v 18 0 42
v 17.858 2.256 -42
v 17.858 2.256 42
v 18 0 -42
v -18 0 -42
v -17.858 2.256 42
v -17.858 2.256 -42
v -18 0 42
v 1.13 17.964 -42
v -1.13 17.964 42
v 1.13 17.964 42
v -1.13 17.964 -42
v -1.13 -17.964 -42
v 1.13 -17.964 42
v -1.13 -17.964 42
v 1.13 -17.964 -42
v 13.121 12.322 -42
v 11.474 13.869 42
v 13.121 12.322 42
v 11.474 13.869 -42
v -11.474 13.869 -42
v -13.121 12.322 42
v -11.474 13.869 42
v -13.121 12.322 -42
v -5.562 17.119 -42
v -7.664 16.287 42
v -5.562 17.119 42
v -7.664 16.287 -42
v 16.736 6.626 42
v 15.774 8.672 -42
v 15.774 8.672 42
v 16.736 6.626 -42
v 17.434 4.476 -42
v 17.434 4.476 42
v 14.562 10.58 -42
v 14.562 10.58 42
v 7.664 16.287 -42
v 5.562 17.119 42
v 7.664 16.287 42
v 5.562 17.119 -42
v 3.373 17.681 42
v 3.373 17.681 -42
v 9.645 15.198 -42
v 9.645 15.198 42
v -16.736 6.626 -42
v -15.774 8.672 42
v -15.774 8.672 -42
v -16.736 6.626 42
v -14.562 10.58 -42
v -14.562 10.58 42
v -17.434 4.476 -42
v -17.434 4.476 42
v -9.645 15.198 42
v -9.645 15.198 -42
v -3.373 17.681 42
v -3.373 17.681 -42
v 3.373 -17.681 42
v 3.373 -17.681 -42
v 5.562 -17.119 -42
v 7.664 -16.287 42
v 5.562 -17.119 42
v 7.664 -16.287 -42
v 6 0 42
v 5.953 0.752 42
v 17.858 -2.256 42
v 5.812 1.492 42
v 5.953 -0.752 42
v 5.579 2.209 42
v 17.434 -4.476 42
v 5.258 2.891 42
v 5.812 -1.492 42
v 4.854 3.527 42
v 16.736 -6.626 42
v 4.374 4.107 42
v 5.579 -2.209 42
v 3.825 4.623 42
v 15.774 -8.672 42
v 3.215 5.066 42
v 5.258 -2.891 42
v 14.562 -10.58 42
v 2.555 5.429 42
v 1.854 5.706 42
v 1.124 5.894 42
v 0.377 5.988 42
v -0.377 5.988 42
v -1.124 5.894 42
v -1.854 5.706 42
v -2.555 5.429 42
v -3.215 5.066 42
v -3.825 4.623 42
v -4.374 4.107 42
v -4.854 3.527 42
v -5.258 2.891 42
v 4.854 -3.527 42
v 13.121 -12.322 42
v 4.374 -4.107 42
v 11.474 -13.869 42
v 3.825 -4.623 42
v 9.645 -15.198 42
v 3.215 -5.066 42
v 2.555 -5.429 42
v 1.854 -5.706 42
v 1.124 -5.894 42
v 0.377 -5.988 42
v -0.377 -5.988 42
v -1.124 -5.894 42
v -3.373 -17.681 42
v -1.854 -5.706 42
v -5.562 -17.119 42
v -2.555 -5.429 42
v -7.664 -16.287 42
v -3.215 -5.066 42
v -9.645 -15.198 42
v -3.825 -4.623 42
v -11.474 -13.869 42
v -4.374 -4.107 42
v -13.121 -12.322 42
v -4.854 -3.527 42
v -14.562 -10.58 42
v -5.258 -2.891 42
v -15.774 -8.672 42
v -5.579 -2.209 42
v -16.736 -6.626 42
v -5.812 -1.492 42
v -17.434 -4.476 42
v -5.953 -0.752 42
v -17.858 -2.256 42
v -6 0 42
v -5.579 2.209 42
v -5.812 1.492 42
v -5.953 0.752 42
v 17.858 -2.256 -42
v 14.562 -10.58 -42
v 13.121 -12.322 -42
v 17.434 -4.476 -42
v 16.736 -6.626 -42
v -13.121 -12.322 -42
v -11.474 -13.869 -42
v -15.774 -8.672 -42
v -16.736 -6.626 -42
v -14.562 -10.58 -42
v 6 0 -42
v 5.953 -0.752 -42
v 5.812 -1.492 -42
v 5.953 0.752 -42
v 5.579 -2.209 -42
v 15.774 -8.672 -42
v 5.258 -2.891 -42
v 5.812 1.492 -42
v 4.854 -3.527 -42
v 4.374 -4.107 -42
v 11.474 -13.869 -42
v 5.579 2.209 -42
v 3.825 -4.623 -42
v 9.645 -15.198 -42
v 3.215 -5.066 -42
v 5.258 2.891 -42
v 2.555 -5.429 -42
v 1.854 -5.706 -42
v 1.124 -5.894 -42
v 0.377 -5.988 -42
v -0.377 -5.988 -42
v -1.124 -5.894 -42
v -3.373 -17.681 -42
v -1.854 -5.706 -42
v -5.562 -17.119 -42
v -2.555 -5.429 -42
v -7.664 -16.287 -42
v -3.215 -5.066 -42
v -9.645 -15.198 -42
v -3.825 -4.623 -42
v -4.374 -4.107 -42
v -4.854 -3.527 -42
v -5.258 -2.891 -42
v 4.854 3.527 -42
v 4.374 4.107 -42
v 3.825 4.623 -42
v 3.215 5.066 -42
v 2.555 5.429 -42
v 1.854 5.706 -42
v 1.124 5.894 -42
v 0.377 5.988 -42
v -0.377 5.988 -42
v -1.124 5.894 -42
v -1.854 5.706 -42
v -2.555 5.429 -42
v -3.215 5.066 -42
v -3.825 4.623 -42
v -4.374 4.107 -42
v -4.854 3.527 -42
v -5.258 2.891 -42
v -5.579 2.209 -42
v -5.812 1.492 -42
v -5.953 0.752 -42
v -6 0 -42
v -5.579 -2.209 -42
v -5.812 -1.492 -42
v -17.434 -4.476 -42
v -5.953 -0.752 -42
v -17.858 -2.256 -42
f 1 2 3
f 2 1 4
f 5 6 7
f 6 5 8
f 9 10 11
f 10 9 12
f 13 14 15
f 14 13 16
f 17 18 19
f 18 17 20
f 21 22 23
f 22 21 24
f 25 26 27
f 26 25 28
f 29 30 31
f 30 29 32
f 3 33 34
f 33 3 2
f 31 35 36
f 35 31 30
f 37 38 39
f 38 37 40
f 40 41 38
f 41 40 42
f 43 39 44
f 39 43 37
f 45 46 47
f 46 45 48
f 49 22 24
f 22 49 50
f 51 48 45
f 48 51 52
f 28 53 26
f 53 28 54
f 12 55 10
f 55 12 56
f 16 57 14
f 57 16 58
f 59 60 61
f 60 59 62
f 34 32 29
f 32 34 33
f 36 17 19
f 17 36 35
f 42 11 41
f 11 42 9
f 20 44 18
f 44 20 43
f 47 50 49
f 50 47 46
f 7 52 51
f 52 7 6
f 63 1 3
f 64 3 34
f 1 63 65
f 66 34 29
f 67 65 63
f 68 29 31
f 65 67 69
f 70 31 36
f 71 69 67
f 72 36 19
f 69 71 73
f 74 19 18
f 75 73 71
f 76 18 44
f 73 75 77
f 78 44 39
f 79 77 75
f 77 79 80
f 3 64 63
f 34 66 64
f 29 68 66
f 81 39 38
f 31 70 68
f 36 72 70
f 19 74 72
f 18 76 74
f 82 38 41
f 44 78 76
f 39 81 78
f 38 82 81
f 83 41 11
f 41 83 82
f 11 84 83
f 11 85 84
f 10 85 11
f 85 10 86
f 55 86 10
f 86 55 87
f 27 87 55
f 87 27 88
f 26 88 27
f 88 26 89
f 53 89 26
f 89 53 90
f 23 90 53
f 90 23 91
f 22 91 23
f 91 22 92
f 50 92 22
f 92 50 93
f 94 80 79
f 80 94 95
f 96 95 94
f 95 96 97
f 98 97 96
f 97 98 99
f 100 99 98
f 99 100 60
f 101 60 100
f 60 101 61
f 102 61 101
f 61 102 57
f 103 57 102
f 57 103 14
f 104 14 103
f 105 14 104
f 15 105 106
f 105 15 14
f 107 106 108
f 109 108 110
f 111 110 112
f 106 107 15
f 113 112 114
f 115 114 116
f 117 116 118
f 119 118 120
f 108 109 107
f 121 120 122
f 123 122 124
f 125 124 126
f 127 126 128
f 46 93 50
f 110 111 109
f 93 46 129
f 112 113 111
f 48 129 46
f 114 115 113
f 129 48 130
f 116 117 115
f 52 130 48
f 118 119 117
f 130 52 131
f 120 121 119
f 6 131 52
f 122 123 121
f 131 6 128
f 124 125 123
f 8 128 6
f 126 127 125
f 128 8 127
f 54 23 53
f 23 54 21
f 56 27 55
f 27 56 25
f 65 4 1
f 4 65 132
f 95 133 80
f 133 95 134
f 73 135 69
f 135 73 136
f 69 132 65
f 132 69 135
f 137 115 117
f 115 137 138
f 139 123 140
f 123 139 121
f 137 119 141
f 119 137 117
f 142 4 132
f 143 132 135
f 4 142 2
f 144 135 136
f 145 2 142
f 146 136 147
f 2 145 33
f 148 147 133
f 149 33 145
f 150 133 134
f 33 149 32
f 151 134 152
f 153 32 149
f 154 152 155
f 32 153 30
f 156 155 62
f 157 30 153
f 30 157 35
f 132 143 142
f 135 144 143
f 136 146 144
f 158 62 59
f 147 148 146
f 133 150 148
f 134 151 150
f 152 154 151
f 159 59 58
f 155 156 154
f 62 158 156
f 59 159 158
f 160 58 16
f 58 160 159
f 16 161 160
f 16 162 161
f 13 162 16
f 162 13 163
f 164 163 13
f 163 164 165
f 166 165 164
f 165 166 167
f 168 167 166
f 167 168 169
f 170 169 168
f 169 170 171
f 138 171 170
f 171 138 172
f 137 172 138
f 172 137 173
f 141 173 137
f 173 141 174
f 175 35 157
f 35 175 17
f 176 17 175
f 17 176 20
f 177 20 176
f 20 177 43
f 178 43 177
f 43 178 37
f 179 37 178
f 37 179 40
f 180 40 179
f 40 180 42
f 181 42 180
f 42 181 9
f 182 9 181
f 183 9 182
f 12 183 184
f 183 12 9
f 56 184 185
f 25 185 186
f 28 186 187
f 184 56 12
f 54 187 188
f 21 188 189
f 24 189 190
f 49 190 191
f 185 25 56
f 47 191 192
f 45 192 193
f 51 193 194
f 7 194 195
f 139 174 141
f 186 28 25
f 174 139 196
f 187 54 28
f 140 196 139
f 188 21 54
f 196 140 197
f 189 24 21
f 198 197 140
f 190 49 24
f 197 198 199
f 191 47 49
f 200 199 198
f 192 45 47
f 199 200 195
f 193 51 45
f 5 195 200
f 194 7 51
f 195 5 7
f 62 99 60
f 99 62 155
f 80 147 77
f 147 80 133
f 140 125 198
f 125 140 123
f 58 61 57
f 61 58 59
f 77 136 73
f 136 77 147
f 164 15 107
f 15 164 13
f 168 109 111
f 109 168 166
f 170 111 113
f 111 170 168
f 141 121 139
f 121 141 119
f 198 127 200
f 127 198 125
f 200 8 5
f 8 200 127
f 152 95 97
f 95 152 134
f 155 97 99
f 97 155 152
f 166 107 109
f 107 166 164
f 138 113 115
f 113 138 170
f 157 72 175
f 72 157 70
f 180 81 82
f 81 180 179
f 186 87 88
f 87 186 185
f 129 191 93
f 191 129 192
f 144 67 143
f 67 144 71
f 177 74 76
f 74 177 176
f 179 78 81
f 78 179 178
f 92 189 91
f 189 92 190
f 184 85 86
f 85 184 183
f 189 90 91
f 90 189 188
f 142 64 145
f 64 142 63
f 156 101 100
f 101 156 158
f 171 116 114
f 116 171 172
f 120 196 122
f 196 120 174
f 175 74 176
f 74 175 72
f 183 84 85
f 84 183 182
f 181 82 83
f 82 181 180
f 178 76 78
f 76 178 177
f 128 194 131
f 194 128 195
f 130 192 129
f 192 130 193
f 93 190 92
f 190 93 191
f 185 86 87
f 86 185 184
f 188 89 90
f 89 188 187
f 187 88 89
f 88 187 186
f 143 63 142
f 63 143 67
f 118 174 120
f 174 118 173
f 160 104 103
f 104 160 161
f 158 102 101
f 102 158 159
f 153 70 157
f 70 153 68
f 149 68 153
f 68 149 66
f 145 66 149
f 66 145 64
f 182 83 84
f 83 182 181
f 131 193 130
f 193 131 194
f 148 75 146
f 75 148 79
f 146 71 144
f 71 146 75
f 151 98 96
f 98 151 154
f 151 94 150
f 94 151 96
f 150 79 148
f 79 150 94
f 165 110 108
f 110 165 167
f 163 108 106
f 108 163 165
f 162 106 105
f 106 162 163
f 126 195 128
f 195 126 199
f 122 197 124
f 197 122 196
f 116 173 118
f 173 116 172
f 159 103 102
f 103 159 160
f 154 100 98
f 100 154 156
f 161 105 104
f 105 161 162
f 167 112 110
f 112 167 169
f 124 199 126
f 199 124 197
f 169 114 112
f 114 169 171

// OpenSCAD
$fn = 50;


difference() {
	union() {
		translate(v = [0, 0, -42.0000000000]) {
			cylinder(h = 84, r = 18.0000000000);
		}
	}
	union() {
		translate(v = [0, 0, -100.0000000000]) {
			cylinder(h = 200, r = 6);
		}
	}
}
